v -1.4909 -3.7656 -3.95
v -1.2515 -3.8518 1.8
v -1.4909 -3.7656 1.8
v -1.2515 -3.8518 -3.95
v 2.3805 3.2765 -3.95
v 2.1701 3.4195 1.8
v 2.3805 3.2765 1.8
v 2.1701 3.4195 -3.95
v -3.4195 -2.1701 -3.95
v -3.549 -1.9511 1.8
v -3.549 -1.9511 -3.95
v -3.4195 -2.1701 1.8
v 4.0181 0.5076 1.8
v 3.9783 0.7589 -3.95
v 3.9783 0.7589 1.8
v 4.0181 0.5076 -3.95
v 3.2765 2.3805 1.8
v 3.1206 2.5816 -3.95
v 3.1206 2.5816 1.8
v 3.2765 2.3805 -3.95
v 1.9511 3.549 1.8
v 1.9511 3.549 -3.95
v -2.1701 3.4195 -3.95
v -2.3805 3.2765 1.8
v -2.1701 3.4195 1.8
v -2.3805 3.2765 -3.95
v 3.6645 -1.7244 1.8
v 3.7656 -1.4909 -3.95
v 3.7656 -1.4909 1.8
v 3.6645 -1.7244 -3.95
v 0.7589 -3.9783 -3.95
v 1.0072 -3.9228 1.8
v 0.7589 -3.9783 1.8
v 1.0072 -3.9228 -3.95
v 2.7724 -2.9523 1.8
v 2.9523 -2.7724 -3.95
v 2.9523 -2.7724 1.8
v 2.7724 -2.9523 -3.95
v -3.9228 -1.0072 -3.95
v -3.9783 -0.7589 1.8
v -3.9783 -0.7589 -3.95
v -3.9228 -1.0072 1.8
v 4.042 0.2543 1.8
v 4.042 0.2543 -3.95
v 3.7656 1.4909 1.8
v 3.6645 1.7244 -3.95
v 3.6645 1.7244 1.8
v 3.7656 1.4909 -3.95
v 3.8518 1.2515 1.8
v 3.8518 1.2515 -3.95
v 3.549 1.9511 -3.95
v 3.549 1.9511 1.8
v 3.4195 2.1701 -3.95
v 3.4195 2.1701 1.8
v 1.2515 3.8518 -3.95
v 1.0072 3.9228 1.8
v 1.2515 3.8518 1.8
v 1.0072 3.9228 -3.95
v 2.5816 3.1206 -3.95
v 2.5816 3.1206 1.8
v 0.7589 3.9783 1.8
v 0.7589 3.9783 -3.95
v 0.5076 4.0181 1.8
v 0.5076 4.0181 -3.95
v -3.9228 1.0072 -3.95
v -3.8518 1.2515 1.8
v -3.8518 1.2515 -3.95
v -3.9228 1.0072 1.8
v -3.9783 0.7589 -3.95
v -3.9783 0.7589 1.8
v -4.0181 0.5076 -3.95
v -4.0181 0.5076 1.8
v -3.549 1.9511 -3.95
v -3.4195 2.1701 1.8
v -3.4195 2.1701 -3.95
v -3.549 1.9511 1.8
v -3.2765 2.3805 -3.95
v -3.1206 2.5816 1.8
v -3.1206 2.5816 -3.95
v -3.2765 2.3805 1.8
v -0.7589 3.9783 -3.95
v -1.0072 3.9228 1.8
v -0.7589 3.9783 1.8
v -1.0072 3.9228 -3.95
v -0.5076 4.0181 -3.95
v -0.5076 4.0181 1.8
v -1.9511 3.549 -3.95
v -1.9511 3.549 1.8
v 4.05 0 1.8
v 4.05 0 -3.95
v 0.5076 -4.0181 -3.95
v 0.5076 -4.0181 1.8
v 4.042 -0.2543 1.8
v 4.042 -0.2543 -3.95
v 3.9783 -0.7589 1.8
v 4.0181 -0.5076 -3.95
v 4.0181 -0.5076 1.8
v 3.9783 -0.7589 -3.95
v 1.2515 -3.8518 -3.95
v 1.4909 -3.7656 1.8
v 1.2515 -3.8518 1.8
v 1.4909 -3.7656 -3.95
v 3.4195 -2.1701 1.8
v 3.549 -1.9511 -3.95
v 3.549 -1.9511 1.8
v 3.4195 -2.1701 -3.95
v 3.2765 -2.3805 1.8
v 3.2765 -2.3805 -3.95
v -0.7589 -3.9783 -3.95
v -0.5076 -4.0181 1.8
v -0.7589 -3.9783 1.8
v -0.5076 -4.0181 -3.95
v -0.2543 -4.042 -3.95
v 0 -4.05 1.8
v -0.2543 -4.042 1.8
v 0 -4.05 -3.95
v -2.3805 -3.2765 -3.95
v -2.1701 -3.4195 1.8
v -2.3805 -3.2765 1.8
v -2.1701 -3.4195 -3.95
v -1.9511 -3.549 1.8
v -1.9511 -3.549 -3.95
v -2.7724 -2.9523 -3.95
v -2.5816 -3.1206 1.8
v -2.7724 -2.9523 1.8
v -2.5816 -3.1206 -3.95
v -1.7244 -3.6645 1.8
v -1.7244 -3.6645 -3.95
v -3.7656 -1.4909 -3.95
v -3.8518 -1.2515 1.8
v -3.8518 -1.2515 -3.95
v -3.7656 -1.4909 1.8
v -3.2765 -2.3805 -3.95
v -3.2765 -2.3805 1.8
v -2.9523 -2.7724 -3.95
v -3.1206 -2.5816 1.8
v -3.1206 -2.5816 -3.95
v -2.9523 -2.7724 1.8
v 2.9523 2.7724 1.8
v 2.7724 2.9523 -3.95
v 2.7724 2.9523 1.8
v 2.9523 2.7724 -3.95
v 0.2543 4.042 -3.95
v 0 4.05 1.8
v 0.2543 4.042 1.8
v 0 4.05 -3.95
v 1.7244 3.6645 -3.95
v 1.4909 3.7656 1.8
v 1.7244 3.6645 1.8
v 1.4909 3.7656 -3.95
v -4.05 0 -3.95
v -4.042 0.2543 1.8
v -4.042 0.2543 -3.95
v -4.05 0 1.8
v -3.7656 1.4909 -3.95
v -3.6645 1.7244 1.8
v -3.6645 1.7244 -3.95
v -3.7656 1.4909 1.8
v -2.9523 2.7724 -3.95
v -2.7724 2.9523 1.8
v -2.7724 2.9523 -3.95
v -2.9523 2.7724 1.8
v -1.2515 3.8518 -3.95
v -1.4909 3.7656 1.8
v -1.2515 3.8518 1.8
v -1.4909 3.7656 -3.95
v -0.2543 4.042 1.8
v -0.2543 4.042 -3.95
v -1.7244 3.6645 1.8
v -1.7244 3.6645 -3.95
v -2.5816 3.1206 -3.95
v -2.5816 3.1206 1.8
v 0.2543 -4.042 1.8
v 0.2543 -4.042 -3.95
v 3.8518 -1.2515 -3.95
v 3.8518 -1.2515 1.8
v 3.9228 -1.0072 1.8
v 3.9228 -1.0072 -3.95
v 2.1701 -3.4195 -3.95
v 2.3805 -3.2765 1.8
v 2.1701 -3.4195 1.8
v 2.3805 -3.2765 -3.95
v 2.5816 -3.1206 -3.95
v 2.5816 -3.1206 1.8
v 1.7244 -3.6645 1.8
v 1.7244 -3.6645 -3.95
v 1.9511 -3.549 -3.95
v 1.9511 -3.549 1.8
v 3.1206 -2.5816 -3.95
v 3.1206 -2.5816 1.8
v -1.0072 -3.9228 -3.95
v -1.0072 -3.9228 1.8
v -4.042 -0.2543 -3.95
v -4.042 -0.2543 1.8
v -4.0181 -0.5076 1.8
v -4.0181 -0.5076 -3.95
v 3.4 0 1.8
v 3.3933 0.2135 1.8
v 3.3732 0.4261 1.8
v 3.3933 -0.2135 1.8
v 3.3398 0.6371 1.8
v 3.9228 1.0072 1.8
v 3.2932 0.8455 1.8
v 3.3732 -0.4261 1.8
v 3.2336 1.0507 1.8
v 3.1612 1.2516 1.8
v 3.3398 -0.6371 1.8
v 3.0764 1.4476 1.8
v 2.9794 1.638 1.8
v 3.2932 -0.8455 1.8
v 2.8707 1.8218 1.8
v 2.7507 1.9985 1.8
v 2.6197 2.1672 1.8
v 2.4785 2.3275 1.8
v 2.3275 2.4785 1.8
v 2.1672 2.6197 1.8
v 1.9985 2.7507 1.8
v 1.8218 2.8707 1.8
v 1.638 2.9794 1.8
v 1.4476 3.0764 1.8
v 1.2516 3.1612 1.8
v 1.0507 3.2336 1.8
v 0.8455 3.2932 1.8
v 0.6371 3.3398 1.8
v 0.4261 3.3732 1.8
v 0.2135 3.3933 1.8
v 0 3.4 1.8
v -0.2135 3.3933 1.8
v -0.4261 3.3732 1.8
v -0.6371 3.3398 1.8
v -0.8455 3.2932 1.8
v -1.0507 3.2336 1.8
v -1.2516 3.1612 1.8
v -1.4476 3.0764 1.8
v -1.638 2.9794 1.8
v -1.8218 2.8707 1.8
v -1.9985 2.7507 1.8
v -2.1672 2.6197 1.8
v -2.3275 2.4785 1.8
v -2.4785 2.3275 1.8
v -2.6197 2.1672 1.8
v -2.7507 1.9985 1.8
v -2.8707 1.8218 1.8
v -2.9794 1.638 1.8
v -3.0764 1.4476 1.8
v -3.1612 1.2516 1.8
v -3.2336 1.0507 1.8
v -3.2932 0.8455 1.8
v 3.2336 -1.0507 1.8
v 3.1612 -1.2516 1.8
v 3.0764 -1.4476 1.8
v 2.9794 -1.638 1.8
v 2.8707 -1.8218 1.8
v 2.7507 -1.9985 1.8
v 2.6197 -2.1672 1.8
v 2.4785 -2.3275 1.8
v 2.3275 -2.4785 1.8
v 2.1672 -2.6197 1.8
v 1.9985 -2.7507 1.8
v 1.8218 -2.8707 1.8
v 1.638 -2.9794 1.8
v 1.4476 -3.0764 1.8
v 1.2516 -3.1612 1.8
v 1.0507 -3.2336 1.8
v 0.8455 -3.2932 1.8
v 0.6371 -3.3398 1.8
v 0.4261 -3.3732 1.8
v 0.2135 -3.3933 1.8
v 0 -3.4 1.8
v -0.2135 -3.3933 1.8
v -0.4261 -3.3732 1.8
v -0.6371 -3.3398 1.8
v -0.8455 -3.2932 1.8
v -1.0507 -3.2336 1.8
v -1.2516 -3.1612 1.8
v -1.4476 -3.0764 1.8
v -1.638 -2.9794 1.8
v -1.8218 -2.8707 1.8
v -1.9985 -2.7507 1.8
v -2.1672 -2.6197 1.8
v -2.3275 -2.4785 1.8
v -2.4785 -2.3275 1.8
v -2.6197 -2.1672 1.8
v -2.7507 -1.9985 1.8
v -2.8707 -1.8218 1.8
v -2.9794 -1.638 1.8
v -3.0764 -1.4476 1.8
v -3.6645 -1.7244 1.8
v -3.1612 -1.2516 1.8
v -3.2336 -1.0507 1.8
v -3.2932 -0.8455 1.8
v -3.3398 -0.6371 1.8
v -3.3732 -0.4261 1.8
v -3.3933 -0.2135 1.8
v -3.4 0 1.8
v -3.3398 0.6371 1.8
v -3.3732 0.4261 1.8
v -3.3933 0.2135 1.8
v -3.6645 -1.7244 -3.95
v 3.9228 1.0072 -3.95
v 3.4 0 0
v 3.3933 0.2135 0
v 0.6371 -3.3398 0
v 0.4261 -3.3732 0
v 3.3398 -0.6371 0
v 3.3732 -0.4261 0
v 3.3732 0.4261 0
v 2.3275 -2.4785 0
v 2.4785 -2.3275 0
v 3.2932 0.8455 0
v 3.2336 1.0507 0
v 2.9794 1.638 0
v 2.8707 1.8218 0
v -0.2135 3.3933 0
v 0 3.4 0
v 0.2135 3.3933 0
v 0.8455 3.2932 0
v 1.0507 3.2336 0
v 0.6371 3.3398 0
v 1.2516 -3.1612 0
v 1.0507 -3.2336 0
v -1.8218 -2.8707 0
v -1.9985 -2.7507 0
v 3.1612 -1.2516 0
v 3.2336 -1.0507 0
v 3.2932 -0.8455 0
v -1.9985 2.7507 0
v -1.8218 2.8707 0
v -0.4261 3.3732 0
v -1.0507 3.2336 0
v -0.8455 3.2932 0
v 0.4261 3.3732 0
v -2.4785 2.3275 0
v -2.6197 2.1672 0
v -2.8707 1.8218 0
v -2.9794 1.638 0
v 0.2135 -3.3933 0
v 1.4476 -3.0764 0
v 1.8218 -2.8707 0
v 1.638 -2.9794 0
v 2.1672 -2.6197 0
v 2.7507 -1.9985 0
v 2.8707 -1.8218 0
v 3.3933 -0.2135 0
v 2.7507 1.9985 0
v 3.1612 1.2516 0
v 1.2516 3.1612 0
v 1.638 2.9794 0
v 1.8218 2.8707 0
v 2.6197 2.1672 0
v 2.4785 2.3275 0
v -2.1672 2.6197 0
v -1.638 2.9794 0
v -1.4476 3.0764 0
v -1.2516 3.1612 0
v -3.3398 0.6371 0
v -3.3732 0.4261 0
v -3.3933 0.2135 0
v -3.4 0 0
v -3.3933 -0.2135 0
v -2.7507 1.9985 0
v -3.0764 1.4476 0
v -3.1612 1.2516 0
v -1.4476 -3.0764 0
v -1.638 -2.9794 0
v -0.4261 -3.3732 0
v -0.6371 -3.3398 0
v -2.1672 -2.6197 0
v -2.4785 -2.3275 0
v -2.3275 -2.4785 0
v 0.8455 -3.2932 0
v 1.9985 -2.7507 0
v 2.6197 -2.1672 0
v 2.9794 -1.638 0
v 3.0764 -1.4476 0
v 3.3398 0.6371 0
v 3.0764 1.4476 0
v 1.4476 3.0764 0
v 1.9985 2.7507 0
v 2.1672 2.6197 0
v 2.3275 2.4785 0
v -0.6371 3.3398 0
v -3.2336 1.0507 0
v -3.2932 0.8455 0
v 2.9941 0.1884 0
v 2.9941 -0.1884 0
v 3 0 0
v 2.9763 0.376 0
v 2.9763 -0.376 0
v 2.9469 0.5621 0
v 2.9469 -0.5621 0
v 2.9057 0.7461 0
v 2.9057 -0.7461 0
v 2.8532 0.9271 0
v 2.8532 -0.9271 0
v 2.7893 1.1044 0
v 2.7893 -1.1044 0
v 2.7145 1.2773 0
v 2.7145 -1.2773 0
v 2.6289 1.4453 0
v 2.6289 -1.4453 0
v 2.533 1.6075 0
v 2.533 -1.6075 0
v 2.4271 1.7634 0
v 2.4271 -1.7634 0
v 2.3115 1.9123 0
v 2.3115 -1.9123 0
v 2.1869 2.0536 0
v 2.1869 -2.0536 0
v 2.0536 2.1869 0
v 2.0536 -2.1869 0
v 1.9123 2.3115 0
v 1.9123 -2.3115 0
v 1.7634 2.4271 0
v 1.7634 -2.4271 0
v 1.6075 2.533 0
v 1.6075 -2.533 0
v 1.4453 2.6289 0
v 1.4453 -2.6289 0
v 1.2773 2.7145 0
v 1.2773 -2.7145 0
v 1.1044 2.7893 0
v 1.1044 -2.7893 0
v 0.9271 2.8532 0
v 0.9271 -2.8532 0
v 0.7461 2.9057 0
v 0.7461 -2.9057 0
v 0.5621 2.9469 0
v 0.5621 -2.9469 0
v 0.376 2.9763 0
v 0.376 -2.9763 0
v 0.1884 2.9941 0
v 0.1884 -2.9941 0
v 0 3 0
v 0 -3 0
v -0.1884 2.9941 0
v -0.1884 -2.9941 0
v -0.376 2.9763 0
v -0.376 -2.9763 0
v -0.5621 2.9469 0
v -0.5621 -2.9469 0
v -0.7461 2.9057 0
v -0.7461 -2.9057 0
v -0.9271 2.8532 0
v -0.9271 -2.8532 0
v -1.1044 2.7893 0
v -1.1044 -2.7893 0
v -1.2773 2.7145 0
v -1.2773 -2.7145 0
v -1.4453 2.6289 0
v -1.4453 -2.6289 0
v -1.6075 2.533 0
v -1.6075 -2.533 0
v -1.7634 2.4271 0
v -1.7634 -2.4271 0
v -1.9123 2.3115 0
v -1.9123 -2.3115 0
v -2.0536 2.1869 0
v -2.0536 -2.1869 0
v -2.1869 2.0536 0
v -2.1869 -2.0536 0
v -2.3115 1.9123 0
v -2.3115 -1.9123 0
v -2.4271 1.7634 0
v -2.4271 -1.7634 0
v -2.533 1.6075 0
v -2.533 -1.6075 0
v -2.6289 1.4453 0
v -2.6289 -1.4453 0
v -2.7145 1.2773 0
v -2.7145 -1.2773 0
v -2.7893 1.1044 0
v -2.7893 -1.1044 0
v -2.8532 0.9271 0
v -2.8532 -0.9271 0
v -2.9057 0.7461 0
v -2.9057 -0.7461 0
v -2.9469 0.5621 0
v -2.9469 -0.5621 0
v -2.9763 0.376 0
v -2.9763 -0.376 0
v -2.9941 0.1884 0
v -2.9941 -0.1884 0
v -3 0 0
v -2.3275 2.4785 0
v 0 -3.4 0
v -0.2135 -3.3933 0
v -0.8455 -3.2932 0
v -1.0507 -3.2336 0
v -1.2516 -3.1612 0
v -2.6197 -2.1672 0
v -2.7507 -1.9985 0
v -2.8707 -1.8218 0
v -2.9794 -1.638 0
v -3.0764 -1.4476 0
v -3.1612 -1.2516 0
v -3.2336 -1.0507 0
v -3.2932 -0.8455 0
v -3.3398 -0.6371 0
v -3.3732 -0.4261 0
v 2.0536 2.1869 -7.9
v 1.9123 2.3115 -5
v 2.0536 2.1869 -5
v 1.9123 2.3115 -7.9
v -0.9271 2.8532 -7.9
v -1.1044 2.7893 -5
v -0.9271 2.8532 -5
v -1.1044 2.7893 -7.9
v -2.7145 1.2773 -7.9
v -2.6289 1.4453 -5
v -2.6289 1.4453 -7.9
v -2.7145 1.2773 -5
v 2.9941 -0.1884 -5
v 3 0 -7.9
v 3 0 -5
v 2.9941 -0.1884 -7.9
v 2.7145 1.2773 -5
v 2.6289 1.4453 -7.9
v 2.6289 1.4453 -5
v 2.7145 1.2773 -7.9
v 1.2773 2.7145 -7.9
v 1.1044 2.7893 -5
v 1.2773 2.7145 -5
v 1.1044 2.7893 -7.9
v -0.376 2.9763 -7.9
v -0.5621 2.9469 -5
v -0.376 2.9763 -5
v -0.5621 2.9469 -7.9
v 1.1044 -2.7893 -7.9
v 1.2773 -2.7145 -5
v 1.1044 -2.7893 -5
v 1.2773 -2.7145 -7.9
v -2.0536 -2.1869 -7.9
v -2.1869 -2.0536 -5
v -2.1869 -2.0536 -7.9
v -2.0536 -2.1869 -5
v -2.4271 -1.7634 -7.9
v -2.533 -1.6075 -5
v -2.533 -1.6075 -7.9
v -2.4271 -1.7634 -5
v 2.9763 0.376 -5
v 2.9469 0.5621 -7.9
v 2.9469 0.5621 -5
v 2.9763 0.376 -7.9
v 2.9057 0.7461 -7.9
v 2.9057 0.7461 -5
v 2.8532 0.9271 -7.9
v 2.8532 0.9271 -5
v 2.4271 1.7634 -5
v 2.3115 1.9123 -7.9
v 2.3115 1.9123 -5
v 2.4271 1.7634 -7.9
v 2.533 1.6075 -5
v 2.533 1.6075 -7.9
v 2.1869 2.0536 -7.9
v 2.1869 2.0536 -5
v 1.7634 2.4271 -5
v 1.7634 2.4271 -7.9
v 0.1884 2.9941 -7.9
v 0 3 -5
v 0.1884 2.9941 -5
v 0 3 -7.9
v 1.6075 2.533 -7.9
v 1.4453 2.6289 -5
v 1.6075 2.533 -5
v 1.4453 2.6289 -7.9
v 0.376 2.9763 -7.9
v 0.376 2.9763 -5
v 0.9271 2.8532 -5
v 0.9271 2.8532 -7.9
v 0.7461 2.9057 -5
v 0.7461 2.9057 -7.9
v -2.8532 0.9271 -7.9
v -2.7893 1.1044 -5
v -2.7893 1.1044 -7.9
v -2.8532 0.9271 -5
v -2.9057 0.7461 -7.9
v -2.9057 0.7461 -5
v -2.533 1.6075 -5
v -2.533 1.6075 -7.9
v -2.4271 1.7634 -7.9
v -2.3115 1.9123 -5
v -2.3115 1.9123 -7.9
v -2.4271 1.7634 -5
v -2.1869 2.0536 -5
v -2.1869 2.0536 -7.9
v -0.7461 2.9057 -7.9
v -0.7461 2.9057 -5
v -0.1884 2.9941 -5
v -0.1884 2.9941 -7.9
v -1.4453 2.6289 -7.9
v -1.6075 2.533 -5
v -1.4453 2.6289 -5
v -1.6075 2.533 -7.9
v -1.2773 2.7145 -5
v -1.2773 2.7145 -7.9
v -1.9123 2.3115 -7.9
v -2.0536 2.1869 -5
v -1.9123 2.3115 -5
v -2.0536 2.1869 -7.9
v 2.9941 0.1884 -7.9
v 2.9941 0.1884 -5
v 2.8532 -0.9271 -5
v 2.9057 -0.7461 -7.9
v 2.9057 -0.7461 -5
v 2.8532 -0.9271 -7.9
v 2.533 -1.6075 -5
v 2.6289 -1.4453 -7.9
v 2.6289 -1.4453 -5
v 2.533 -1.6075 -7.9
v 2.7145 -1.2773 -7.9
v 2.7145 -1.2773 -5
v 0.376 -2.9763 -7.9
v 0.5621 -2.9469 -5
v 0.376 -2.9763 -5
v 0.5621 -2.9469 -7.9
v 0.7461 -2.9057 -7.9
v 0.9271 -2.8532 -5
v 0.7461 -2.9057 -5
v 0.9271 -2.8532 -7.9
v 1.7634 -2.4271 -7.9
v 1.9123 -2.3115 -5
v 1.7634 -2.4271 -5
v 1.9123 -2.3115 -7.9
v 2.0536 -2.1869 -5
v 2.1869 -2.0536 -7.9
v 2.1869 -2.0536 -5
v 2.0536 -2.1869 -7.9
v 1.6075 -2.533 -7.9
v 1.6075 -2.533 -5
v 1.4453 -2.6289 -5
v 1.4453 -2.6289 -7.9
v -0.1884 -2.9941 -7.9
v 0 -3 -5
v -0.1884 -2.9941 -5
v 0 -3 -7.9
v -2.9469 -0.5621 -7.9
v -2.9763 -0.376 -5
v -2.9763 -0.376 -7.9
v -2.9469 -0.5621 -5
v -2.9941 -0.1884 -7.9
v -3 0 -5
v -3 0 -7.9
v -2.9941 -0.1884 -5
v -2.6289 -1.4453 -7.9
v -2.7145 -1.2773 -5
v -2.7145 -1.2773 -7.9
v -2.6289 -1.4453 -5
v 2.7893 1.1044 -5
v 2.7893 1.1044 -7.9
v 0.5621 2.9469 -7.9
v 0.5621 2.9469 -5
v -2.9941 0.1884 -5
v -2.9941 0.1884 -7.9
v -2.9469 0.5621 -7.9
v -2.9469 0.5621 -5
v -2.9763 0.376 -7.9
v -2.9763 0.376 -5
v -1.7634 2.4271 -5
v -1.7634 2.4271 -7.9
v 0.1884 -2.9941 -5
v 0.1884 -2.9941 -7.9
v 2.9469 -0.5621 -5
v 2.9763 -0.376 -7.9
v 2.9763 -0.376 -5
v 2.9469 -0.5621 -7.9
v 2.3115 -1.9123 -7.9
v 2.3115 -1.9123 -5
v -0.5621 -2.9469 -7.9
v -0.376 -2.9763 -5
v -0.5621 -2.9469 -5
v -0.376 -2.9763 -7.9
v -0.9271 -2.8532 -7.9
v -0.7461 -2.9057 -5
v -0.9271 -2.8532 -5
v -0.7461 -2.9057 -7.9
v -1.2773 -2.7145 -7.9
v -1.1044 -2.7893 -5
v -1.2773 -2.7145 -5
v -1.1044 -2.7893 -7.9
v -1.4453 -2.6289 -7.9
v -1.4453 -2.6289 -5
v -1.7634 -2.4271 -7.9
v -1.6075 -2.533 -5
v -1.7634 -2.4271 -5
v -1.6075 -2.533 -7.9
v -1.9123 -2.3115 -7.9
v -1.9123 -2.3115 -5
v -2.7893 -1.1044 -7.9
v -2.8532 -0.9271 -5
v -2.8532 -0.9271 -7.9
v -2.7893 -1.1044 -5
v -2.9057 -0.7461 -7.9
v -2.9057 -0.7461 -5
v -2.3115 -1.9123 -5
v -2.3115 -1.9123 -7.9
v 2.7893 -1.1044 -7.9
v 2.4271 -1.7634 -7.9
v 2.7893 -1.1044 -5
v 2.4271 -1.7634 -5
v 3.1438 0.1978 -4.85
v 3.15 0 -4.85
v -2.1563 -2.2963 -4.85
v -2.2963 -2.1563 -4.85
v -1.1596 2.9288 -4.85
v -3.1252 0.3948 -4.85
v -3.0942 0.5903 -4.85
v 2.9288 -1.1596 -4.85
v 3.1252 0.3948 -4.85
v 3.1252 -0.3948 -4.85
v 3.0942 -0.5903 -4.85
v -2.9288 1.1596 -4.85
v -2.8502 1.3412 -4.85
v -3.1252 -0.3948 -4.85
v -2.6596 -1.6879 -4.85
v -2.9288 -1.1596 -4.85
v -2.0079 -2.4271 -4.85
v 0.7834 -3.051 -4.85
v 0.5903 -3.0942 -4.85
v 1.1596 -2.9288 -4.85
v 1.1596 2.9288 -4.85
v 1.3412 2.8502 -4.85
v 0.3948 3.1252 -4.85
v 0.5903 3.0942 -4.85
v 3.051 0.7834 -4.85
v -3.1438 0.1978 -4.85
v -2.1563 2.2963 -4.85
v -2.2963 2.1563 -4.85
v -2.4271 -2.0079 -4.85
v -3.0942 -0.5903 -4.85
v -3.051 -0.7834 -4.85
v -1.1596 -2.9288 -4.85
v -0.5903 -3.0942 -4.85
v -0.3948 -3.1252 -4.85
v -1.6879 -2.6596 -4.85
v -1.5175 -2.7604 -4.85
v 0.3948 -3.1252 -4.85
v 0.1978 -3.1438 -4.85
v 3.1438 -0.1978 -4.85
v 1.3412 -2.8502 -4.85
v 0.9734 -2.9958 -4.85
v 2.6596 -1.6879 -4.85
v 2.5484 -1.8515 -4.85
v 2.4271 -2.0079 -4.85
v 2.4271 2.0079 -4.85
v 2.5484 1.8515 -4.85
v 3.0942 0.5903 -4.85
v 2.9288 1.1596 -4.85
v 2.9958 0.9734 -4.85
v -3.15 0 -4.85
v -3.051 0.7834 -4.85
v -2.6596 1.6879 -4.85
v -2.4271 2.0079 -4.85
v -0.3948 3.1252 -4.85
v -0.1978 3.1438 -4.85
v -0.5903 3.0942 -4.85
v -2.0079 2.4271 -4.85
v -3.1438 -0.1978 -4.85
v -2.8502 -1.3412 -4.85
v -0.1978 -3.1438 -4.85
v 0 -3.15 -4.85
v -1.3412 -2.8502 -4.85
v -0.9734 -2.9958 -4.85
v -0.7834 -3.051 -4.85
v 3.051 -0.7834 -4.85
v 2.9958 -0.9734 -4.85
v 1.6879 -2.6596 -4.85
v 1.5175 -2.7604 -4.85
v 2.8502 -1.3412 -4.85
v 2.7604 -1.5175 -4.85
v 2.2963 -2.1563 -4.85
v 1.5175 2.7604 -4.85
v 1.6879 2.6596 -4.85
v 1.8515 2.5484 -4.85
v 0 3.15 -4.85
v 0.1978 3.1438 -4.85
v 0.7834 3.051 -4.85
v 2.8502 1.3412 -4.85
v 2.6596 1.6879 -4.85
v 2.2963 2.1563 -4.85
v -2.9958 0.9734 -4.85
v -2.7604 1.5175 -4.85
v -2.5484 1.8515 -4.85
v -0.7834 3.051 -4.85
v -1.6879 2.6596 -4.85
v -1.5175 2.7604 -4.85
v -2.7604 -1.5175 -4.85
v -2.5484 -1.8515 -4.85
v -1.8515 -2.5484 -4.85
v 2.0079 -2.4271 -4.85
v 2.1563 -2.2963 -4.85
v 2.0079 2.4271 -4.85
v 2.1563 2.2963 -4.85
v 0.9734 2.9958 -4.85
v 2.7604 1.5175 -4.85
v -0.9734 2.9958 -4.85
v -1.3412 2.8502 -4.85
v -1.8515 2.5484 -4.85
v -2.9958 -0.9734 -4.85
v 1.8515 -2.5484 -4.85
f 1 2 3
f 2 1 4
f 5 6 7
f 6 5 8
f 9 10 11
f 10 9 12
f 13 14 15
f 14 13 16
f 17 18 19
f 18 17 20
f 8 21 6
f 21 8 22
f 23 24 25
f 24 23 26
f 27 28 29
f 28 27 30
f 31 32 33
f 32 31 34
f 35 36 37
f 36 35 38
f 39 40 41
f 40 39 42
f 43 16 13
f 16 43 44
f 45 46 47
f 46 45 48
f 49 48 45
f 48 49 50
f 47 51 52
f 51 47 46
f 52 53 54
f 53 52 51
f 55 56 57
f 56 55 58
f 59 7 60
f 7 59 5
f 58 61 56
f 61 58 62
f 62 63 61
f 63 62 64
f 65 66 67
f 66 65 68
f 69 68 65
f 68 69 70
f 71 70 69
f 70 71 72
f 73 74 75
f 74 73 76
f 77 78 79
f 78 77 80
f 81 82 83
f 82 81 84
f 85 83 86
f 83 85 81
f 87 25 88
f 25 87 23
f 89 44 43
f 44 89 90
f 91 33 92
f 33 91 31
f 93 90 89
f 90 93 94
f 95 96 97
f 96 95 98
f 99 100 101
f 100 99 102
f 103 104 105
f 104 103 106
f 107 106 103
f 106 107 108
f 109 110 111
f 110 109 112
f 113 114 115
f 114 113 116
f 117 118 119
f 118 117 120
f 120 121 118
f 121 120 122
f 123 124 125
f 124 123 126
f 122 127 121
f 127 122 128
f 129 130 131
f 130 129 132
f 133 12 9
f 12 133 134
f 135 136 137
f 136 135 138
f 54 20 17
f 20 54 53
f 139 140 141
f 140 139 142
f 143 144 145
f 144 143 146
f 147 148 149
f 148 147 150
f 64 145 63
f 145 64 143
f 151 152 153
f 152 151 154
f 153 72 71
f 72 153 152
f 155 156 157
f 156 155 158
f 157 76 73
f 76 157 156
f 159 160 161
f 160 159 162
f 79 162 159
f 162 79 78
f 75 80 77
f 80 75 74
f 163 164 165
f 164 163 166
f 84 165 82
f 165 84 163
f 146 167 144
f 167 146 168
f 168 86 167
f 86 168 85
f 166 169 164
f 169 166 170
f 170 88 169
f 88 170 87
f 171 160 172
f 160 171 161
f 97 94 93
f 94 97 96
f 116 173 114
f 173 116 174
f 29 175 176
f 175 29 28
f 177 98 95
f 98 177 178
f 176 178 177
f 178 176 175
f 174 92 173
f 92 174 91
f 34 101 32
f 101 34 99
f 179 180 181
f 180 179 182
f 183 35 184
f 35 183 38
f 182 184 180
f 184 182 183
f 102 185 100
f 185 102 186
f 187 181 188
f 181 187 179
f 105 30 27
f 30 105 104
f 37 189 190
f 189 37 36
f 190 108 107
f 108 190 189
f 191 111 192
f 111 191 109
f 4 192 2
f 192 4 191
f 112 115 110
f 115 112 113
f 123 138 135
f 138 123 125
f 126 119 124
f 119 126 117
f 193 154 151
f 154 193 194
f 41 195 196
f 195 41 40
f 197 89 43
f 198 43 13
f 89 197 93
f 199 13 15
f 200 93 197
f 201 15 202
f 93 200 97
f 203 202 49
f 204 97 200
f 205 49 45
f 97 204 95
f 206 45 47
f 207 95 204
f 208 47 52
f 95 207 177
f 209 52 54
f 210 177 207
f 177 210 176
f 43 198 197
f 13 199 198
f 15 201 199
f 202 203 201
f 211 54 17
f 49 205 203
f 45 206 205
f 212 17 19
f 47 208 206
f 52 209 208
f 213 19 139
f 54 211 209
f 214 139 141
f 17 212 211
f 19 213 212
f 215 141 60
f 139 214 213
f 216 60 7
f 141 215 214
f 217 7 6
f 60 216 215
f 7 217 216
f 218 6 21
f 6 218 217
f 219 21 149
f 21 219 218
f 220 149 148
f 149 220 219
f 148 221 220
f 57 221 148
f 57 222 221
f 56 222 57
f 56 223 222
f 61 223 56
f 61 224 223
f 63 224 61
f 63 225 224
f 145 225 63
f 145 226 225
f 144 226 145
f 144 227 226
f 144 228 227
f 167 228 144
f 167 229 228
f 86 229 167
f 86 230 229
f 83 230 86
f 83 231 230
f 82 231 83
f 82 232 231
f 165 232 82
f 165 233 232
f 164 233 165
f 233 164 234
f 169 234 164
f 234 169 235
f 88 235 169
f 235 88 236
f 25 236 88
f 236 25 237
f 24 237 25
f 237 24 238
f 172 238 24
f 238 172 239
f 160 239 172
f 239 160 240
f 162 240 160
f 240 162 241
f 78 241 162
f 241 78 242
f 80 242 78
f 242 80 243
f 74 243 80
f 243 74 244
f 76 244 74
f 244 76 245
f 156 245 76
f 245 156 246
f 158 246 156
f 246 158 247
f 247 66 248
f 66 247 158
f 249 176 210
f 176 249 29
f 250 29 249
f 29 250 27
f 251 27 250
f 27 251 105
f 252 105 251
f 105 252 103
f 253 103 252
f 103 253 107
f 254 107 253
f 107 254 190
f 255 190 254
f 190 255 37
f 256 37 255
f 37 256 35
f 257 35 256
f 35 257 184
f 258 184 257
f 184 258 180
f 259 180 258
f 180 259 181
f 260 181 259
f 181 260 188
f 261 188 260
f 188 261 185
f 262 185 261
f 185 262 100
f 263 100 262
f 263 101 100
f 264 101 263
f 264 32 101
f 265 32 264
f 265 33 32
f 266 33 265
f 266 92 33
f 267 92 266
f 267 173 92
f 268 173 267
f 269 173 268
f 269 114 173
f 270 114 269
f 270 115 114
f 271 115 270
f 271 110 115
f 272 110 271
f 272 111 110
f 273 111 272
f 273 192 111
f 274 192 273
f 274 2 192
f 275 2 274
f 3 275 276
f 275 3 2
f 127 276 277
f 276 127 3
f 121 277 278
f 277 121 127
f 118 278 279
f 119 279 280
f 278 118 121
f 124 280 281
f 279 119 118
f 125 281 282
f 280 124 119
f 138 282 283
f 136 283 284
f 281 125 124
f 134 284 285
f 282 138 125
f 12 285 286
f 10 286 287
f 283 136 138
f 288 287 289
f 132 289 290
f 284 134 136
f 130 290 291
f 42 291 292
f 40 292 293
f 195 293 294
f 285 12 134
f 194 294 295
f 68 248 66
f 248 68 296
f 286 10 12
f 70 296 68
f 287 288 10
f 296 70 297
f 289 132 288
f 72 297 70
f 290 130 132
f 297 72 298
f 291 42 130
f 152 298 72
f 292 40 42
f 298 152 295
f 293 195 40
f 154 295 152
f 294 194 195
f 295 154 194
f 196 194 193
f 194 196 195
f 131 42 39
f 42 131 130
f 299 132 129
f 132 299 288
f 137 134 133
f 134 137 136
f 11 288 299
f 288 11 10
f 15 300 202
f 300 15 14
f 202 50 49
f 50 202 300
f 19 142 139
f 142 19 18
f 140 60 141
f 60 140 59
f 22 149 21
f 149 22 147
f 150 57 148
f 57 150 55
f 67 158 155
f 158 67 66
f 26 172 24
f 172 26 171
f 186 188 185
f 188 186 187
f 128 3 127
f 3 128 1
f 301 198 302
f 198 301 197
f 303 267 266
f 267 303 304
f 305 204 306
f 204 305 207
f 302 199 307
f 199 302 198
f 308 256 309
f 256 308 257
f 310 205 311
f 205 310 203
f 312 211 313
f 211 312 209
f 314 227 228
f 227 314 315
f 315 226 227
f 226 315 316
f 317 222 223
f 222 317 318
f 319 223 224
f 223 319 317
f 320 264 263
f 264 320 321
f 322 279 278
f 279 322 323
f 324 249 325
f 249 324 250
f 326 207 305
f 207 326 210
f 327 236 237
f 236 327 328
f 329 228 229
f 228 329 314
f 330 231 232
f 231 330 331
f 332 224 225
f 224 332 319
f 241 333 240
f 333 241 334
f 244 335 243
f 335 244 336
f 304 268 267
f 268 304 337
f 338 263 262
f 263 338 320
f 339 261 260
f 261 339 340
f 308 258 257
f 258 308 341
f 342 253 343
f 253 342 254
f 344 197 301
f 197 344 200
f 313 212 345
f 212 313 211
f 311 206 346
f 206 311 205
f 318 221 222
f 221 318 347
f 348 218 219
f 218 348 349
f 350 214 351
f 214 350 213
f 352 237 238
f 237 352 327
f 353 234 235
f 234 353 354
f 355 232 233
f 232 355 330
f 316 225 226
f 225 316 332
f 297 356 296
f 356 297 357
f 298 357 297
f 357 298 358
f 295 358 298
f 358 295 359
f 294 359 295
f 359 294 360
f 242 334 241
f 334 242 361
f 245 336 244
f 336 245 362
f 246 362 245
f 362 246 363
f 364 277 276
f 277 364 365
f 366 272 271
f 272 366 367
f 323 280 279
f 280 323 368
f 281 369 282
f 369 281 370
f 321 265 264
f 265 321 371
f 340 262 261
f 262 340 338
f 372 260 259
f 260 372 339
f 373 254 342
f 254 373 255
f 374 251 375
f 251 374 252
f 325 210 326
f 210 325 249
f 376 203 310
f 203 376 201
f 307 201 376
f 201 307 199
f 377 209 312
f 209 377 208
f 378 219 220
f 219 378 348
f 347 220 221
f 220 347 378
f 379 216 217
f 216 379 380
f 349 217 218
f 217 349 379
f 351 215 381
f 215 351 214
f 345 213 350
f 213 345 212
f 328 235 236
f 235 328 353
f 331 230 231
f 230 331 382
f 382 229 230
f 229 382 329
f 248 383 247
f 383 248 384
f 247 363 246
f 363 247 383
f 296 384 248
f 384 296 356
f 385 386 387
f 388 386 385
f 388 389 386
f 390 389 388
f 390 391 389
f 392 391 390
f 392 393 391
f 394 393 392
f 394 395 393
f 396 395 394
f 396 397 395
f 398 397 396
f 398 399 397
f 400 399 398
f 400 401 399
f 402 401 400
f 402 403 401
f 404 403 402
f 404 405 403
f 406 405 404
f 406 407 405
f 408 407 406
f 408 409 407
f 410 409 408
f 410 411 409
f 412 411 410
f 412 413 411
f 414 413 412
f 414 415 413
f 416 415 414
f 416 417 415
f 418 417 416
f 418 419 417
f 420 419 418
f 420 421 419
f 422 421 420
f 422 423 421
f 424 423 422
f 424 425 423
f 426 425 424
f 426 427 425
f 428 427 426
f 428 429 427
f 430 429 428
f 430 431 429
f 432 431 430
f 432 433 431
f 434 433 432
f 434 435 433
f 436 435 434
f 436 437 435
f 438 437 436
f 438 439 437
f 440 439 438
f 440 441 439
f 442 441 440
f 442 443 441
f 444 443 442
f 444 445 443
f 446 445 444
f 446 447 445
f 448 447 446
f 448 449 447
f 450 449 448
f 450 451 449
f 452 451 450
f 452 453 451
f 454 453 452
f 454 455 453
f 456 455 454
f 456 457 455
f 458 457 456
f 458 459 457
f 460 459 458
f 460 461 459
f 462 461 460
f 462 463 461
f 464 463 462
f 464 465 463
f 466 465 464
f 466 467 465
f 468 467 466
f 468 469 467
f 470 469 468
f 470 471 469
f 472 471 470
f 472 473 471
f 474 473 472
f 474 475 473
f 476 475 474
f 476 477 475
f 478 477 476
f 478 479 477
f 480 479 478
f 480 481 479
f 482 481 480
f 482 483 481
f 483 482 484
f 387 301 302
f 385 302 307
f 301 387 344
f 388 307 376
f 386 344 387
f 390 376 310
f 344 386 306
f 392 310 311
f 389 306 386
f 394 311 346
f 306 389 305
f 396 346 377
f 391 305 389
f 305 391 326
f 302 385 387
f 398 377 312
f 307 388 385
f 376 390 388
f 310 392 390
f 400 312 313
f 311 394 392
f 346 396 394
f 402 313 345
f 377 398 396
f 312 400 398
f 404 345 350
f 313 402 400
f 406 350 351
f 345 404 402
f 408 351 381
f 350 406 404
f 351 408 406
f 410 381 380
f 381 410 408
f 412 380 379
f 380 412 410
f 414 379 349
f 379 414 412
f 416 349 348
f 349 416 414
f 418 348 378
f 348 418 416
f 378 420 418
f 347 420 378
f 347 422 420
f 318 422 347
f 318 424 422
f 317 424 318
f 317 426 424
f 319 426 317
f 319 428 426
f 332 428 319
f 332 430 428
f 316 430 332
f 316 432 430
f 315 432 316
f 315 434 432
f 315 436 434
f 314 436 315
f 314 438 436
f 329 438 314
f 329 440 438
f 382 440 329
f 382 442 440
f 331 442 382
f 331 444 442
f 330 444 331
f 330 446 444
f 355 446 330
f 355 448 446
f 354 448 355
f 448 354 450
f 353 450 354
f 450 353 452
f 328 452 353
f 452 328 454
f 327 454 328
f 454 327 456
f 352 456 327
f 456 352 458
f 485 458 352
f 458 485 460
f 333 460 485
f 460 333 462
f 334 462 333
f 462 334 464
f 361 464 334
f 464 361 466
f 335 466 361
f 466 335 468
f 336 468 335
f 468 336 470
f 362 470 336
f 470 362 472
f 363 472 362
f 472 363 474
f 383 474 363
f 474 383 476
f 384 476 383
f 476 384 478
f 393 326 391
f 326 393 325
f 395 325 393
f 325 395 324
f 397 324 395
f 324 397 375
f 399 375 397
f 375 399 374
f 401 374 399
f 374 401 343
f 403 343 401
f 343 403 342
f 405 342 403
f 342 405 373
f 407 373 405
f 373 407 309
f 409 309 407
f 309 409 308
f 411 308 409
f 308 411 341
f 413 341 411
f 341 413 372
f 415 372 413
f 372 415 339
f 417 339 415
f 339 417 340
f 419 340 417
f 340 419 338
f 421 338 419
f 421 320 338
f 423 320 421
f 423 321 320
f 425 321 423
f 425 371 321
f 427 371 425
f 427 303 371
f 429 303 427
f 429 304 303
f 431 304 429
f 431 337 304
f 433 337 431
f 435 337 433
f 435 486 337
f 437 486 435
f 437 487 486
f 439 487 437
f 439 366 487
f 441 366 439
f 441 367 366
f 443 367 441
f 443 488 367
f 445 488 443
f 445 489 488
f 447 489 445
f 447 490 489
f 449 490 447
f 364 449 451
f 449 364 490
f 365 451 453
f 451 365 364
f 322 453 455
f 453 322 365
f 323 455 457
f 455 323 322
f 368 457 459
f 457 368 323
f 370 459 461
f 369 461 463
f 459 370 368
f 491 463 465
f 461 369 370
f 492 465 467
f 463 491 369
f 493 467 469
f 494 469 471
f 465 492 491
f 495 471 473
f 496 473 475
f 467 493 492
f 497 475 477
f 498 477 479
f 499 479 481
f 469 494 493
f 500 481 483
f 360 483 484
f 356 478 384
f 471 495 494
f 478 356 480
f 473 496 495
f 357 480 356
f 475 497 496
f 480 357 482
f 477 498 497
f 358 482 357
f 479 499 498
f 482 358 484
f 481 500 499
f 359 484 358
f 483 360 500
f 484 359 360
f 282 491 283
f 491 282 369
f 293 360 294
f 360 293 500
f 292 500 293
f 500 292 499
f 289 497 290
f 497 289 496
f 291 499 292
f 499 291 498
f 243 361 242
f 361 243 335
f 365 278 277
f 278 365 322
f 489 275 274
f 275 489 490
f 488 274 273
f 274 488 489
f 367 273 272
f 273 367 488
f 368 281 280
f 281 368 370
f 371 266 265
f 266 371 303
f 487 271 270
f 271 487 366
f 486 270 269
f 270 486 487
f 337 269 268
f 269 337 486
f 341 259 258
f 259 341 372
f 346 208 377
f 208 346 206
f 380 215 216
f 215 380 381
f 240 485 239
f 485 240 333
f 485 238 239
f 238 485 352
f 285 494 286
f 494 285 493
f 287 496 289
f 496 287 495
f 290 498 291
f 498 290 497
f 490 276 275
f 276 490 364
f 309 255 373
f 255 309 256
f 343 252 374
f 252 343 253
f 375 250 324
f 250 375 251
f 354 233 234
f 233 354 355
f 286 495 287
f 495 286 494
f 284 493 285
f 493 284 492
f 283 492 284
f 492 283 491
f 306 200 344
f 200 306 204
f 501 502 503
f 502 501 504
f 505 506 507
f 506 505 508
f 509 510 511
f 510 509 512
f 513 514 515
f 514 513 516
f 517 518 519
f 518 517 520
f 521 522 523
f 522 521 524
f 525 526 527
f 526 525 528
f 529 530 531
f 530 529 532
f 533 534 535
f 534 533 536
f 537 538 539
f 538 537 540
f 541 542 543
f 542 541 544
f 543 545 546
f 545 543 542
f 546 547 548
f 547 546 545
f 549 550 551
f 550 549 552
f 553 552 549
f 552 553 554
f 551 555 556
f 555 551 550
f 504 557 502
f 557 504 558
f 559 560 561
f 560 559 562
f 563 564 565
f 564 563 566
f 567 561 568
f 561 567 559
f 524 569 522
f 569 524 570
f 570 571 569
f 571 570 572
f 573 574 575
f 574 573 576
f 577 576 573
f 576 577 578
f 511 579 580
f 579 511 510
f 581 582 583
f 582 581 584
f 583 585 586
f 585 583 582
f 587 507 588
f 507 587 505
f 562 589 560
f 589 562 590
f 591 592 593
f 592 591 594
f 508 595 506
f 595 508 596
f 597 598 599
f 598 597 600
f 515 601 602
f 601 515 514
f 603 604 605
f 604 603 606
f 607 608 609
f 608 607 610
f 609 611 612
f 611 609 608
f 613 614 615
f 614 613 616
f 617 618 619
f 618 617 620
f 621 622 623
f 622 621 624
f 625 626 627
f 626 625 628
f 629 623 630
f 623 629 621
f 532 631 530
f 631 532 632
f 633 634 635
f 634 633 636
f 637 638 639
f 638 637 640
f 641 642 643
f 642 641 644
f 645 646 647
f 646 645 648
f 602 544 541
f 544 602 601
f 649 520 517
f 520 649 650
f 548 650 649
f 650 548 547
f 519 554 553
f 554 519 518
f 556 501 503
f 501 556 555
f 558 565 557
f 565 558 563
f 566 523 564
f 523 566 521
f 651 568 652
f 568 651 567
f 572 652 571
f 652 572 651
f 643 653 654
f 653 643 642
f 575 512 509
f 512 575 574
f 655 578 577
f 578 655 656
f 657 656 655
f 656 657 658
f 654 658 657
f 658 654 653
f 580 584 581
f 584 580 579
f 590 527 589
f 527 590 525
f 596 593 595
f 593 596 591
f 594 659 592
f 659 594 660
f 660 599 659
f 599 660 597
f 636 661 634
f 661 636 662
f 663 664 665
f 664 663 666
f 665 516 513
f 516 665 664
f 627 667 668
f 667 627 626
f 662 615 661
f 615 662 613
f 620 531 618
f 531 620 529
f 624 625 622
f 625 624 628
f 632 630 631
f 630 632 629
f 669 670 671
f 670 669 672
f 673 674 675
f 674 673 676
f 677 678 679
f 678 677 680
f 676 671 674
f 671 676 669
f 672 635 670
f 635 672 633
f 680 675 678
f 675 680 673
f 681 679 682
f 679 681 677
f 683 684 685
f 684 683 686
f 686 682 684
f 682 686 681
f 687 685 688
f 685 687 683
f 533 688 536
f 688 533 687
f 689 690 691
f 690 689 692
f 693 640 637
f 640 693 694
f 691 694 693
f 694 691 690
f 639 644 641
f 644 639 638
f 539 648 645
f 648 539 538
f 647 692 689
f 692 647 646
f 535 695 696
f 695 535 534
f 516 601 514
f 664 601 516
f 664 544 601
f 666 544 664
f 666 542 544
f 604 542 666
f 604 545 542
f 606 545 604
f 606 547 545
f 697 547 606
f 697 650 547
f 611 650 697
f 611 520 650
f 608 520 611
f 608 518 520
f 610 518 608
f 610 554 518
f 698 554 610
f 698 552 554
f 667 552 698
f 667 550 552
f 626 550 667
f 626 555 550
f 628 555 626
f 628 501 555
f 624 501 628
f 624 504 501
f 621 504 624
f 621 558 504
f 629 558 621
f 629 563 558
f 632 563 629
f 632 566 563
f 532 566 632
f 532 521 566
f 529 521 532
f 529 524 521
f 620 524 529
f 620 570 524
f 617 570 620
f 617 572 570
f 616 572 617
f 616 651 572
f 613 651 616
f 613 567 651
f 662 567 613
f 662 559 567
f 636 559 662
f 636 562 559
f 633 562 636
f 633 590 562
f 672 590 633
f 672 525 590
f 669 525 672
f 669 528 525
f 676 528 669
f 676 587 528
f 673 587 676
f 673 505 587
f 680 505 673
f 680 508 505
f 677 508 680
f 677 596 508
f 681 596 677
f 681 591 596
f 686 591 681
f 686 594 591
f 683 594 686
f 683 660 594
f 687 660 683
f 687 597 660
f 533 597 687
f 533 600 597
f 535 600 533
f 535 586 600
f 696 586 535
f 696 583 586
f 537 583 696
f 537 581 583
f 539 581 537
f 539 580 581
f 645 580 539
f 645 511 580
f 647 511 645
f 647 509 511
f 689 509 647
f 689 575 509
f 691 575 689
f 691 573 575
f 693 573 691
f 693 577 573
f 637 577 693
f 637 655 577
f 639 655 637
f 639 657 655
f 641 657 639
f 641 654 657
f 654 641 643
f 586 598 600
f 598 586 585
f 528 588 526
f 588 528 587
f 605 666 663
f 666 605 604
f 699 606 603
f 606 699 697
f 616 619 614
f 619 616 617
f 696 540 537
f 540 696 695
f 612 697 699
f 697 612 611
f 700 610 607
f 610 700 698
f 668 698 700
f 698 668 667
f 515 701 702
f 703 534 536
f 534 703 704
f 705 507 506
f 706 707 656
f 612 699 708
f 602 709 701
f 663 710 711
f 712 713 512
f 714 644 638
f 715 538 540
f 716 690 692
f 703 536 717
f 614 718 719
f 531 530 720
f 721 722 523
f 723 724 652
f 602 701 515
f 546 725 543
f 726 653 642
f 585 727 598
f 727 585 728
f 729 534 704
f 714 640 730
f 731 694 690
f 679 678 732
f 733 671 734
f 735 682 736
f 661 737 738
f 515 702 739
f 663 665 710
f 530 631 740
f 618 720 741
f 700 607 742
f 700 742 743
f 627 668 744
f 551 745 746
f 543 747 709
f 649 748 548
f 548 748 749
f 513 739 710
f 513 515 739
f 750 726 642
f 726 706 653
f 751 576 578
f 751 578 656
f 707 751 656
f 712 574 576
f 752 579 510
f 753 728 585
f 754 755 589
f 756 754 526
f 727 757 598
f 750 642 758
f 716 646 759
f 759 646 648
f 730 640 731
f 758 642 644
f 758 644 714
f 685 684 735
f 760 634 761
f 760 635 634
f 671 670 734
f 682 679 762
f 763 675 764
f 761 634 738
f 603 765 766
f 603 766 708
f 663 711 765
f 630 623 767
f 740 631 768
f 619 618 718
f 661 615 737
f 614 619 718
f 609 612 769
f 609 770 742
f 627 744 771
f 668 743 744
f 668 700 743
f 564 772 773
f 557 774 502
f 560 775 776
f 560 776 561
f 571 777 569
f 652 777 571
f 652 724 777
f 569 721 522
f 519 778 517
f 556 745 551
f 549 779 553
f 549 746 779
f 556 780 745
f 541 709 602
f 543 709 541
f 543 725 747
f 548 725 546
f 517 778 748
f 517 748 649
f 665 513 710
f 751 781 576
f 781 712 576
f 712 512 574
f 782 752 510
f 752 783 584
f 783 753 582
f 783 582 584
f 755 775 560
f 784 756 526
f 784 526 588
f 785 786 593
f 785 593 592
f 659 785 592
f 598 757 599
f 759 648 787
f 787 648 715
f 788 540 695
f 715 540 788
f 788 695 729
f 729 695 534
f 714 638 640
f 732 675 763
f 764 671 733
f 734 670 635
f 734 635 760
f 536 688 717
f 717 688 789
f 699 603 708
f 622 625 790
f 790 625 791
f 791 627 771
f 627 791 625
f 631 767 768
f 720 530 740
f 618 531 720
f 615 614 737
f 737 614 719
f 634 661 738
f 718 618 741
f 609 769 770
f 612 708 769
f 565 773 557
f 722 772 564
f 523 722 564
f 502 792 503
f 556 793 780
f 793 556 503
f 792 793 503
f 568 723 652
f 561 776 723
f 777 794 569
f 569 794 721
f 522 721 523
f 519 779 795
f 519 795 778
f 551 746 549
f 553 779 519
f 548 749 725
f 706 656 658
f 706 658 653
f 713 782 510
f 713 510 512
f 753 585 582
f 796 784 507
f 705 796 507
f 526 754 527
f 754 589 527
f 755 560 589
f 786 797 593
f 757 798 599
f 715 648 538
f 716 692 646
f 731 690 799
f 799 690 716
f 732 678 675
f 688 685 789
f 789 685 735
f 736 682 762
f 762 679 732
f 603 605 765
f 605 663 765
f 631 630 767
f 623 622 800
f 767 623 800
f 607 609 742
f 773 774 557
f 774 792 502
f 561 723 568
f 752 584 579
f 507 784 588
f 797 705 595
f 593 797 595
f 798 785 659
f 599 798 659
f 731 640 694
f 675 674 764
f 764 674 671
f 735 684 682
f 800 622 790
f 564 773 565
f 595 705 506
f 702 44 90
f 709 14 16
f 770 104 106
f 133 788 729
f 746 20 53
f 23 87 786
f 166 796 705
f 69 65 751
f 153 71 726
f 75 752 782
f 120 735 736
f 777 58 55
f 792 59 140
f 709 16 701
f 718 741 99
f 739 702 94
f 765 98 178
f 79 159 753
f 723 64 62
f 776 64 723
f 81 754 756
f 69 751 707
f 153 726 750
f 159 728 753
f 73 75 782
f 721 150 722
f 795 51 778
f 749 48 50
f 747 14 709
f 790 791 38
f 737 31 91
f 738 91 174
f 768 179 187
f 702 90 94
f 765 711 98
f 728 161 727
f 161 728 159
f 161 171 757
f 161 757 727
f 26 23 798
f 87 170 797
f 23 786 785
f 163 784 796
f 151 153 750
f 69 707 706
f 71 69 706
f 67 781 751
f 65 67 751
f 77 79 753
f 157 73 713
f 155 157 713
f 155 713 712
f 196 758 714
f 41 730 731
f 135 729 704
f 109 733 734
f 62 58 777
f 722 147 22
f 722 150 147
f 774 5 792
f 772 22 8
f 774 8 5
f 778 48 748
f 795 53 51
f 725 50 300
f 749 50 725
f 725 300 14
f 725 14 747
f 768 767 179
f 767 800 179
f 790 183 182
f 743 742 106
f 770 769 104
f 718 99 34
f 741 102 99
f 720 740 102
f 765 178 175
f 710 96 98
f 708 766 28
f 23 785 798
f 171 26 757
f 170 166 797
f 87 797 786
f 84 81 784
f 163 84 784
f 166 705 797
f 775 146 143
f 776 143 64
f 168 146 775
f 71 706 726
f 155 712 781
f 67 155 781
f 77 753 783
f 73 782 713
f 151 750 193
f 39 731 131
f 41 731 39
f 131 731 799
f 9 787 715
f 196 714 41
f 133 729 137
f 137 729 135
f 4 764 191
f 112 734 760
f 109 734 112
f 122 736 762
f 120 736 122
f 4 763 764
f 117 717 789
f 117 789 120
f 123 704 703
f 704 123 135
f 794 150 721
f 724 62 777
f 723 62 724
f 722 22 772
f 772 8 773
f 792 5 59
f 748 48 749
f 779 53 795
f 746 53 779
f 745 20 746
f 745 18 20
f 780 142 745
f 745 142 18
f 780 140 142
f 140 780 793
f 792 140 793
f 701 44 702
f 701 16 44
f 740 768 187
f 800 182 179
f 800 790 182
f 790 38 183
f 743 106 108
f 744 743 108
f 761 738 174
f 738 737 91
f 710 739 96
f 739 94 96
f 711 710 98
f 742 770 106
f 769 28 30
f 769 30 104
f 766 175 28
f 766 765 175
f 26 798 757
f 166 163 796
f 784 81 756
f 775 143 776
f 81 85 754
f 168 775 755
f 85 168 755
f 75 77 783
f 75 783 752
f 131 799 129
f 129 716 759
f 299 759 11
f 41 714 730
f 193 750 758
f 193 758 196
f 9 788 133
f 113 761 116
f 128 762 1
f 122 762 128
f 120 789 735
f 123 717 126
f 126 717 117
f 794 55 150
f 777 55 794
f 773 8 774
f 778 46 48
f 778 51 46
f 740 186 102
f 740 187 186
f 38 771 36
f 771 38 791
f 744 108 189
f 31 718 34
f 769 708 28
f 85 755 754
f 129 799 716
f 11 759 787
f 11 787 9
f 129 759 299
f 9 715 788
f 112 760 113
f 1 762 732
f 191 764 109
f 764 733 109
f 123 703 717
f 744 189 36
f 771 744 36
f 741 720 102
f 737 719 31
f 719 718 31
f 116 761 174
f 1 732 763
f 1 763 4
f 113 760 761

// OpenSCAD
$fn = 100;

button_diameter = 6.6;
hole_diameter = 6.3;
surface_to_button = 7.55;
button_travel = 7.9 - surface_to_button;
button_height = 2.15; // measured to the nubs next to the button
plexi_thickness = 2.7;


d1 = hole_diameter - 0.3;
d2 = button_diameter + 1.5;
tolerance = 0.1;
inf = 1000;

module plunger() {
  cylinder(h = surface_to_button + button_travel, d = d1);
  translate([0, 0, surface_to_button - plexi_thickness]) cylinder(
    h = (hole_diameter - d1)/2,
    d1 = hole_diameter,
    d2 = d1
  );
  transition_height = (d2 - hole_diameter)/2;
  max_diameter_z = surface_to_button - plexi_thickness - transition_height;
  translate([0, 0, max_diameter_z]) cylinder(
    h = transition_height,
    d1 = d2,
    d2 = hole_diameter
  );
  difference() {
    ring_height = button_height - button_travel;
    translate([0, 0, -ring_height]) cylinder(h = max_diameter_z + ring_height, d = d2);
    mirror([0, 0, 1]) cylinder(h = inf, d = button_diameter + tolerance*2);
  }
}

mirror([0, 0, 1]) plunger();
